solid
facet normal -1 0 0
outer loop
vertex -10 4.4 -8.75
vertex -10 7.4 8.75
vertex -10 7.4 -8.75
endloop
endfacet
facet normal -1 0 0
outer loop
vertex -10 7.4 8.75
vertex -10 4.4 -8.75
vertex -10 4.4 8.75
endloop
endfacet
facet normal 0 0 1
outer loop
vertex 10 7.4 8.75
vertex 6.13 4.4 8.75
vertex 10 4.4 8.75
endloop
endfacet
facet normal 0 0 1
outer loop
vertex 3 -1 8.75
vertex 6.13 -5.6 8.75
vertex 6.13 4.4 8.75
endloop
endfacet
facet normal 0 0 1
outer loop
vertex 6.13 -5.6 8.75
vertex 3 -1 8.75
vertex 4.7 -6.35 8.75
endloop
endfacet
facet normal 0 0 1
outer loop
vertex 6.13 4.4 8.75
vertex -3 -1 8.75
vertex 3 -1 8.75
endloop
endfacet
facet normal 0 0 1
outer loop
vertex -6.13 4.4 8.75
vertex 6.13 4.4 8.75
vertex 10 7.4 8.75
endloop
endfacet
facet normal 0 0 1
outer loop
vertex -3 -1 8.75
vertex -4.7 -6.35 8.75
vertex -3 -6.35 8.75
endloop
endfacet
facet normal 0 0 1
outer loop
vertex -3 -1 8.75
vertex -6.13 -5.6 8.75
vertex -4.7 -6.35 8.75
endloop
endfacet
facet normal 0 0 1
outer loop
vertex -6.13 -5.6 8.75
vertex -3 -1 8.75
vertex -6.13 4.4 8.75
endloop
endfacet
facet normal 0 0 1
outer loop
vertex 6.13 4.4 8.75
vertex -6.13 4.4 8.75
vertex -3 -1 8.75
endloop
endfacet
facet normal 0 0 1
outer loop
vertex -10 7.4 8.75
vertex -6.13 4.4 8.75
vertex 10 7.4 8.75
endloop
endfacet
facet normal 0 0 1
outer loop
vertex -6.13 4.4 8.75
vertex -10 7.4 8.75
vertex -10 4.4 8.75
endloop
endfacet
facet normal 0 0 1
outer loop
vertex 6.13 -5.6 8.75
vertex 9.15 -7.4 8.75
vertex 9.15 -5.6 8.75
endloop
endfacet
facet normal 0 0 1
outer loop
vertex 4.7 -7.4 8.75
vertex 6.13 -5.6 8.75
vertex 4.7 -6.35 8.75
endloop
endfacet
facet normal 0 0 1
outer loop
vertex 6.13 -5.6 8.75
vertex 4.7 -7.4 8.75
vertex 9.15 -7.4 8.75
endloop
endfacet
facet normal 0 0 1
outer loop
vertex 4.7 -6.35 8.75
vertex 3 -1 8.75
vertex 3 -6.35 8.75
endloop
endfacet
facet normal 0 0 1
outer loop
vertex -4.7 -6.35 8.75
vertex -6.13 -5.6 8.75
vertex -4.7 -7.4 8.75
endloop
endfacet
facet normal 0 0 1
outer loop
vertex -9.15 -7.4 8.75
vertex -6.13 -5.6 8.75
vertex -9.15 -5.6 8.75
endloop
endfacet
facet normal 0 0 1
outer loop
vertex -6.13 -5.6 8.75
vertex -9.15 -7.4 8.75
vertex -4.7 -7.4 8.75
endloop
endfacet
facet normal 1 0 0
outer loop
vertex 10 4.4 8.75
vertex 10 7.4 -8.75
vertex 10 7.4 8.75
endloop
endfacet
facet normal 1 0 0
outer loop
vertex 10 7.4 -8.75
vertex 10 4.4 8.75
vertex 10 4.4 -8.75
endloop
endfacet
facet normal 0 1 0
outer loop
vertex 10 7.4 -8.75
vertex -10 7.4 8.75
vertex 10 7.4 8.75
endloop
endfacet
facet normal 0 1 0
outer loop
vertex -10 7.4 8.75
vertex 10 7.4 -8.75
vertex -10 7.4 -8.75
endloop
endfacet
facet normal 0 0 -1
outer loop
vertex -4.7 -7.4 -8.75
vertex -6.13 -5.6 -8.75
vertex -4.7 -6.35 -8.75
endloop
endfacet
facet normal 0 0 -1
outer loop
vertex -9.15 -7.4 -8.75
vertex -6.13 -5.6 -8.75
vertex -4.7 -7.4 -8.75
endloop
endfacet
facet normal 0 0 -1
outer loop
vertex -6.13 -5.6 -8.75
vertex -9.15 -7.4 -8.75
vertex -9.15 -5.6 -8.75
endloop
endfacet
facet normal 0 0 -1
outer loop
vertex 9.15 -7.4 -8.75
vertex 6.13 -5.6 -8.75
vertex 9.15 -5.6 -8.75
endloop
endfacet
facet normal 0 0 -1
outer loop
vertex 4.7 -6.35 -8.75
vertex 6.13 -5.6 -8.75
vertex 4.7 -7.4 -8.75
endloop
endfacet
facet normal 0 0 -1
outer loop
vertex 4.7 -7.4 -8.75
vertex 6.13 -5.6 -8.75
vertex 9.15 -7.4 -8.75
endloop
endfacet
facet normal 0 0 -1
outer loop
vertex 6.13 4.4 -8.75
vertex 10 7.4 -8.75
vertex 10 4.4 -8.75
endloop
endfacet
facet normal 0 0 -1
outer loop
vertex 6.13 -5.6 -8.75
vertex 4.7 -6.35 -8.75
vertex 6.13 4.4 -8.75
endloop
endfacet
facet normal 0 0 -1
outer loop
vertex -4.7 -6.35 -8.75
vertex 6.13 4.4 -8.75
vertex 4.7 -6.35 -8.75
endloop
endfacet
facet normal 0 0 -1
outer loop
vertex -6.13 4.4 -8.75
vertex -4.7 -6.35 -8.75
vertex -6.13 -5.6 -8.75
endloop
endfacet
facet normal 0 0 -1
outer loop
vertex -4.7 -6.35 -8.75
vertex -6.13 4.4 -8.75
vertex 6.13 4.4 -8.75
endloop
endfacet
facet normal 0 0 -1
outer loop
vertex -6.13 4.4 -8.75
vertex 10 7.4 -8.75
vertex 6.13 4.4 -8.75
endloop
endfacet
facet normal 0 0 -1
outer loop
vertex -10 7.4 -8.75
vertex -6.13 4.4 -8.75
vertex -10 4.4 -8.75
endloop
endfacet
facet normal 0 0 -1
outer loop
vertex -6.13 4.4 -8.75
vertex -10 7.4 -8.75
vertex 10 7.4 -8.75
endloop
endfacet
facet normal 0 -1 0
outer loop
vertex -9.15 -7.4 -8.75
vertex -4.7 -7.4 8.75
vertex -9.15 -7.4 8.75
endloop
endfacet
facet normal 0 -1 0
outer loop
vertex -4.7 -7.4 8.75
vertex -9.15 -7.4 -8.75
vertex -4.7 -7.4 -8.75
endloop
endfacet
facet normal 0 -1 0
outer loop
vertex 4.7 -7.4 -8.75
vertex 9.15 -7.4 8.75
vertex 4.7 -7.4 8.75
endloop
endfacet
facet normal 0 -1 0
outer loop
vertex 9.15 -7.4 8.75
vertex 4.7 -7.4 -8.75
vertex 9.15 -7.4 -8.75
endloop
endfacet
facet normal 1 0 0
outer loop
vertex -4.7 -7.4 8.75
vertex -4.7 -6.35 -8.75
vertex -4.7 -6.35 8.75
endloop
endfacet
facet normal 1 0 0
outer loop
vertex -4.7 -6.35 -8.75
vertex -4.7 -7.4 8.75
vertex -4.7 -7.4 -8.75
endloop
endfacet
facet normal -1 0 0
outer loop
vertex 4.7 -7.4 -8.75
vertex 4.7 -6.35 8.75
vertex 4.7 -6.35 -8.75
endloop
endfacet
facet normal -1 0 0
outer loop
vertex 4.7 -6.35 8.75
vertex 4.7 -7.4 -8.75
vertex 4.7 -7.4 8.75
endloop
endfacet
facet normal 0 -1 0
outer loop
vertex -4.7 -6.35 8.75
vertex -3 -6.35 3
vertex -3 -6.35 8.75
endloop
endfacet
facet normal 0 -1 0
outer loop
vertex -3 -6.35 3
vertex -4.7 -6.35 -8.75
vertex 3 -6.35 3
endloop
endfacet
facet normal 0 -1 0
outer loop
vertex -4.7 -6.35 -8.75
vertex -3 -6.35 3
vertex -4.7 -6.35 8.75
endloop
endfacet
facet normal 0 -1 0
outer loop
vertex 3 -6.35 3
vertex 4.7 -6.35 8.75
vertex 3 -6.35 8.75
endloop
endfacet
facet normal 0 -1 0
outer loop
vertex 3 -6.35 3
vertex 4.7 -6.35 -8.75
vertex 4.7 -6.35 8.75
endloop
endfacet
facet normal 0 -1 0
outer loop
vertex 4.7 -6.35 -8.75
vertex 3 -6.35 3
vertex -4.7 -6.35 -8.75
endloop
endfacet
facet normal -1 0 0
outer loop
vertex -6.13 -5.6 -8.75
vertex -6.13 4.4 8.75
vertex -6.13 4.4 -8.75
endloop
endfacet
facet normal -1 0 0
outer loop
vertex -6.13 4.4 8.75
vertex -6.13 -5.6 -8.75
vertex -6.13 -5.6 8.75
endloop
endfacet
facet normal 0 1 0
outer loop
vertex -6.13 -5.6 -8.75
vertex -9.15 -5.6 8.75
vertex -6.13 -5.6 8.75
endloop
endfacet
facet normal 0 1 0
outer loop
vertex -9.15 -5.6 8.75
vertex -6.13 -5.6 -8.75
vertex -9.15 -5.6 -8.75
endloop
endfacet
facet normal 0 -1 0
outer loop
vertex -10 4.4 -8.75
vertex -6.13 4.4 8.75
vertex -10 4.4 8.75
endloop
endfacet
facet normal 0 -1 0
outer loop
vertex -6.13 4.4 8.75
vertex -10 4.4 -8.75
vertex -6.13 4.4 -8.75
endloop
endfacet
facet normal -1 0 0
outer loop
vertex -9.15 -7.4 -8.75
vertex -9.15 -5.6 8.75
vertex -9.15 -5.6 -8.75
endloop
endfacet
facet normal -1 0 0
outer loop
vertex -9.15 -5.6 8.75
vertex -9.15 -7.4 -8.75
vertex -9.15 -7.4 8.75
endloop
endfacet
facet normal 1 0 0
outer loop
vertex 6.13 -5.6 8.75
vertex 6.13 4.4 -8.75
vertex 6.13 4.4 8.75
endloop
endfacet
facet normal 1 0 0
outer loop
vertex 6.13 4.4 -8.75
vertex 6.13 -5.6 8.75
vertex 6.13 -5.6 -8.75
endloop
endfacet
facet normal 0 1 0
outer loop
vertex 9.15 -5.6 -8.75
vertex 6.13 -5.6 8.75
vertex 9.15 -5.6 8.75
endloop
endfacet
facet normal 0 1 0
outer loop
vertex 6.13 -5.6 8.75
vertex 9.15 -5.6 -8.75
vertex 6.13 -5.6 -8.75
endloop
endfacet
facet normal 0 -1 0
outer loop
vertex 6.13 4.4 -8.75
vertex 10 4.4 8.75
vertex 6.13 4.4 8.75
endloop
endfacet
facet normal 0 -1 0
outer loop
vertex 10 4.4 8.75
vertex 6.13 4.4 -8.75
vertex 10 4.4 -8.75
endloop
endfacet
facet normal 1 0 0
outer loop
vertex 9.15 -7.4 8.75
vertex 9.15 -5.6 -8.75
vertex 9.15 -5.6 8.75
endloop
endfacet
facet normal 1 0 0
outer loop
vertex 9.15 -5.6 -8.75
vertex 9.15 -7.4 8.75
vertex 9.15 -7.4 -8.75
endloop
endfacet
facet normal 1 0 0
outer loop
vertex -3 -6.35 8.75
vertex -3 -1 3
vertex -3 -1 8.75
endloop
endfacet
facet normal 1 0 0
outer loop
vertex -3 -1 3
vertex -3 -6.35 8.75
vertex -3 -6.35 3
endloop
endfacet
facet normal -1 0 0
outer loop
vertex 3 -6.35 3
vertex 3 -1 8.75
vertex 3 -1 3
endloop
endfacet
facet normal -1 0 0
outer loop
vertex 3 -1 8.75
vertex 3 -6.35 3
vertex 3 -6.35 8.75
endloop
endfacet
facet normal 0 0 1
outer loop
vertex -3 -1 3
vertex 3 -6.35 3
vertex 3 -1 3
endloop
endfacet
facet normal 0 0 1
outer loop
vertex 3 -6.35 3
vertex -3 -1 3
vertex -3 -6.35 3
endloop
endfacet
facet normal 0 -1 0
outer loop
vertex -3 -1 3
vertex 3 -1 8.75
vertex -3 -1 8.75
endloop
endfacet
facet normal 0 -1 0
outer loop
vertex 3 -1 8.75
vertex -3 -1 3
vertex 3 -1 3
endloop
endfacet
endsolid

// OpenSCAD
time=0;
module hot_shoe_mount() {

	difference() {

		cube([20,14.8,17.5], center=true);

		translate([0,-7.6,0]) {
			cube([9.4,2.5,17.5], center=true);
		}
	
		translate([-8.125,-0.60,0]) {
			cube([3.99,10,17.5], center=true);
		}
	
		translate([-9.65,-6.5,0]) {
			cube([1,2,17.9], center=true);
		}
	
	
		translate([8.125,-0.60,0]) {
			cube([3.99,10,17.5], center=true);
		}
	
		translate([9.65,-6.5,0]) {
			cube([1,2,17.9], center=true);
		}
		translate([0, -4, 6]) cube([6, 6, 6], center=true);
		
	}
}

rotate([0,0, time])  hot_shoe_mount();
